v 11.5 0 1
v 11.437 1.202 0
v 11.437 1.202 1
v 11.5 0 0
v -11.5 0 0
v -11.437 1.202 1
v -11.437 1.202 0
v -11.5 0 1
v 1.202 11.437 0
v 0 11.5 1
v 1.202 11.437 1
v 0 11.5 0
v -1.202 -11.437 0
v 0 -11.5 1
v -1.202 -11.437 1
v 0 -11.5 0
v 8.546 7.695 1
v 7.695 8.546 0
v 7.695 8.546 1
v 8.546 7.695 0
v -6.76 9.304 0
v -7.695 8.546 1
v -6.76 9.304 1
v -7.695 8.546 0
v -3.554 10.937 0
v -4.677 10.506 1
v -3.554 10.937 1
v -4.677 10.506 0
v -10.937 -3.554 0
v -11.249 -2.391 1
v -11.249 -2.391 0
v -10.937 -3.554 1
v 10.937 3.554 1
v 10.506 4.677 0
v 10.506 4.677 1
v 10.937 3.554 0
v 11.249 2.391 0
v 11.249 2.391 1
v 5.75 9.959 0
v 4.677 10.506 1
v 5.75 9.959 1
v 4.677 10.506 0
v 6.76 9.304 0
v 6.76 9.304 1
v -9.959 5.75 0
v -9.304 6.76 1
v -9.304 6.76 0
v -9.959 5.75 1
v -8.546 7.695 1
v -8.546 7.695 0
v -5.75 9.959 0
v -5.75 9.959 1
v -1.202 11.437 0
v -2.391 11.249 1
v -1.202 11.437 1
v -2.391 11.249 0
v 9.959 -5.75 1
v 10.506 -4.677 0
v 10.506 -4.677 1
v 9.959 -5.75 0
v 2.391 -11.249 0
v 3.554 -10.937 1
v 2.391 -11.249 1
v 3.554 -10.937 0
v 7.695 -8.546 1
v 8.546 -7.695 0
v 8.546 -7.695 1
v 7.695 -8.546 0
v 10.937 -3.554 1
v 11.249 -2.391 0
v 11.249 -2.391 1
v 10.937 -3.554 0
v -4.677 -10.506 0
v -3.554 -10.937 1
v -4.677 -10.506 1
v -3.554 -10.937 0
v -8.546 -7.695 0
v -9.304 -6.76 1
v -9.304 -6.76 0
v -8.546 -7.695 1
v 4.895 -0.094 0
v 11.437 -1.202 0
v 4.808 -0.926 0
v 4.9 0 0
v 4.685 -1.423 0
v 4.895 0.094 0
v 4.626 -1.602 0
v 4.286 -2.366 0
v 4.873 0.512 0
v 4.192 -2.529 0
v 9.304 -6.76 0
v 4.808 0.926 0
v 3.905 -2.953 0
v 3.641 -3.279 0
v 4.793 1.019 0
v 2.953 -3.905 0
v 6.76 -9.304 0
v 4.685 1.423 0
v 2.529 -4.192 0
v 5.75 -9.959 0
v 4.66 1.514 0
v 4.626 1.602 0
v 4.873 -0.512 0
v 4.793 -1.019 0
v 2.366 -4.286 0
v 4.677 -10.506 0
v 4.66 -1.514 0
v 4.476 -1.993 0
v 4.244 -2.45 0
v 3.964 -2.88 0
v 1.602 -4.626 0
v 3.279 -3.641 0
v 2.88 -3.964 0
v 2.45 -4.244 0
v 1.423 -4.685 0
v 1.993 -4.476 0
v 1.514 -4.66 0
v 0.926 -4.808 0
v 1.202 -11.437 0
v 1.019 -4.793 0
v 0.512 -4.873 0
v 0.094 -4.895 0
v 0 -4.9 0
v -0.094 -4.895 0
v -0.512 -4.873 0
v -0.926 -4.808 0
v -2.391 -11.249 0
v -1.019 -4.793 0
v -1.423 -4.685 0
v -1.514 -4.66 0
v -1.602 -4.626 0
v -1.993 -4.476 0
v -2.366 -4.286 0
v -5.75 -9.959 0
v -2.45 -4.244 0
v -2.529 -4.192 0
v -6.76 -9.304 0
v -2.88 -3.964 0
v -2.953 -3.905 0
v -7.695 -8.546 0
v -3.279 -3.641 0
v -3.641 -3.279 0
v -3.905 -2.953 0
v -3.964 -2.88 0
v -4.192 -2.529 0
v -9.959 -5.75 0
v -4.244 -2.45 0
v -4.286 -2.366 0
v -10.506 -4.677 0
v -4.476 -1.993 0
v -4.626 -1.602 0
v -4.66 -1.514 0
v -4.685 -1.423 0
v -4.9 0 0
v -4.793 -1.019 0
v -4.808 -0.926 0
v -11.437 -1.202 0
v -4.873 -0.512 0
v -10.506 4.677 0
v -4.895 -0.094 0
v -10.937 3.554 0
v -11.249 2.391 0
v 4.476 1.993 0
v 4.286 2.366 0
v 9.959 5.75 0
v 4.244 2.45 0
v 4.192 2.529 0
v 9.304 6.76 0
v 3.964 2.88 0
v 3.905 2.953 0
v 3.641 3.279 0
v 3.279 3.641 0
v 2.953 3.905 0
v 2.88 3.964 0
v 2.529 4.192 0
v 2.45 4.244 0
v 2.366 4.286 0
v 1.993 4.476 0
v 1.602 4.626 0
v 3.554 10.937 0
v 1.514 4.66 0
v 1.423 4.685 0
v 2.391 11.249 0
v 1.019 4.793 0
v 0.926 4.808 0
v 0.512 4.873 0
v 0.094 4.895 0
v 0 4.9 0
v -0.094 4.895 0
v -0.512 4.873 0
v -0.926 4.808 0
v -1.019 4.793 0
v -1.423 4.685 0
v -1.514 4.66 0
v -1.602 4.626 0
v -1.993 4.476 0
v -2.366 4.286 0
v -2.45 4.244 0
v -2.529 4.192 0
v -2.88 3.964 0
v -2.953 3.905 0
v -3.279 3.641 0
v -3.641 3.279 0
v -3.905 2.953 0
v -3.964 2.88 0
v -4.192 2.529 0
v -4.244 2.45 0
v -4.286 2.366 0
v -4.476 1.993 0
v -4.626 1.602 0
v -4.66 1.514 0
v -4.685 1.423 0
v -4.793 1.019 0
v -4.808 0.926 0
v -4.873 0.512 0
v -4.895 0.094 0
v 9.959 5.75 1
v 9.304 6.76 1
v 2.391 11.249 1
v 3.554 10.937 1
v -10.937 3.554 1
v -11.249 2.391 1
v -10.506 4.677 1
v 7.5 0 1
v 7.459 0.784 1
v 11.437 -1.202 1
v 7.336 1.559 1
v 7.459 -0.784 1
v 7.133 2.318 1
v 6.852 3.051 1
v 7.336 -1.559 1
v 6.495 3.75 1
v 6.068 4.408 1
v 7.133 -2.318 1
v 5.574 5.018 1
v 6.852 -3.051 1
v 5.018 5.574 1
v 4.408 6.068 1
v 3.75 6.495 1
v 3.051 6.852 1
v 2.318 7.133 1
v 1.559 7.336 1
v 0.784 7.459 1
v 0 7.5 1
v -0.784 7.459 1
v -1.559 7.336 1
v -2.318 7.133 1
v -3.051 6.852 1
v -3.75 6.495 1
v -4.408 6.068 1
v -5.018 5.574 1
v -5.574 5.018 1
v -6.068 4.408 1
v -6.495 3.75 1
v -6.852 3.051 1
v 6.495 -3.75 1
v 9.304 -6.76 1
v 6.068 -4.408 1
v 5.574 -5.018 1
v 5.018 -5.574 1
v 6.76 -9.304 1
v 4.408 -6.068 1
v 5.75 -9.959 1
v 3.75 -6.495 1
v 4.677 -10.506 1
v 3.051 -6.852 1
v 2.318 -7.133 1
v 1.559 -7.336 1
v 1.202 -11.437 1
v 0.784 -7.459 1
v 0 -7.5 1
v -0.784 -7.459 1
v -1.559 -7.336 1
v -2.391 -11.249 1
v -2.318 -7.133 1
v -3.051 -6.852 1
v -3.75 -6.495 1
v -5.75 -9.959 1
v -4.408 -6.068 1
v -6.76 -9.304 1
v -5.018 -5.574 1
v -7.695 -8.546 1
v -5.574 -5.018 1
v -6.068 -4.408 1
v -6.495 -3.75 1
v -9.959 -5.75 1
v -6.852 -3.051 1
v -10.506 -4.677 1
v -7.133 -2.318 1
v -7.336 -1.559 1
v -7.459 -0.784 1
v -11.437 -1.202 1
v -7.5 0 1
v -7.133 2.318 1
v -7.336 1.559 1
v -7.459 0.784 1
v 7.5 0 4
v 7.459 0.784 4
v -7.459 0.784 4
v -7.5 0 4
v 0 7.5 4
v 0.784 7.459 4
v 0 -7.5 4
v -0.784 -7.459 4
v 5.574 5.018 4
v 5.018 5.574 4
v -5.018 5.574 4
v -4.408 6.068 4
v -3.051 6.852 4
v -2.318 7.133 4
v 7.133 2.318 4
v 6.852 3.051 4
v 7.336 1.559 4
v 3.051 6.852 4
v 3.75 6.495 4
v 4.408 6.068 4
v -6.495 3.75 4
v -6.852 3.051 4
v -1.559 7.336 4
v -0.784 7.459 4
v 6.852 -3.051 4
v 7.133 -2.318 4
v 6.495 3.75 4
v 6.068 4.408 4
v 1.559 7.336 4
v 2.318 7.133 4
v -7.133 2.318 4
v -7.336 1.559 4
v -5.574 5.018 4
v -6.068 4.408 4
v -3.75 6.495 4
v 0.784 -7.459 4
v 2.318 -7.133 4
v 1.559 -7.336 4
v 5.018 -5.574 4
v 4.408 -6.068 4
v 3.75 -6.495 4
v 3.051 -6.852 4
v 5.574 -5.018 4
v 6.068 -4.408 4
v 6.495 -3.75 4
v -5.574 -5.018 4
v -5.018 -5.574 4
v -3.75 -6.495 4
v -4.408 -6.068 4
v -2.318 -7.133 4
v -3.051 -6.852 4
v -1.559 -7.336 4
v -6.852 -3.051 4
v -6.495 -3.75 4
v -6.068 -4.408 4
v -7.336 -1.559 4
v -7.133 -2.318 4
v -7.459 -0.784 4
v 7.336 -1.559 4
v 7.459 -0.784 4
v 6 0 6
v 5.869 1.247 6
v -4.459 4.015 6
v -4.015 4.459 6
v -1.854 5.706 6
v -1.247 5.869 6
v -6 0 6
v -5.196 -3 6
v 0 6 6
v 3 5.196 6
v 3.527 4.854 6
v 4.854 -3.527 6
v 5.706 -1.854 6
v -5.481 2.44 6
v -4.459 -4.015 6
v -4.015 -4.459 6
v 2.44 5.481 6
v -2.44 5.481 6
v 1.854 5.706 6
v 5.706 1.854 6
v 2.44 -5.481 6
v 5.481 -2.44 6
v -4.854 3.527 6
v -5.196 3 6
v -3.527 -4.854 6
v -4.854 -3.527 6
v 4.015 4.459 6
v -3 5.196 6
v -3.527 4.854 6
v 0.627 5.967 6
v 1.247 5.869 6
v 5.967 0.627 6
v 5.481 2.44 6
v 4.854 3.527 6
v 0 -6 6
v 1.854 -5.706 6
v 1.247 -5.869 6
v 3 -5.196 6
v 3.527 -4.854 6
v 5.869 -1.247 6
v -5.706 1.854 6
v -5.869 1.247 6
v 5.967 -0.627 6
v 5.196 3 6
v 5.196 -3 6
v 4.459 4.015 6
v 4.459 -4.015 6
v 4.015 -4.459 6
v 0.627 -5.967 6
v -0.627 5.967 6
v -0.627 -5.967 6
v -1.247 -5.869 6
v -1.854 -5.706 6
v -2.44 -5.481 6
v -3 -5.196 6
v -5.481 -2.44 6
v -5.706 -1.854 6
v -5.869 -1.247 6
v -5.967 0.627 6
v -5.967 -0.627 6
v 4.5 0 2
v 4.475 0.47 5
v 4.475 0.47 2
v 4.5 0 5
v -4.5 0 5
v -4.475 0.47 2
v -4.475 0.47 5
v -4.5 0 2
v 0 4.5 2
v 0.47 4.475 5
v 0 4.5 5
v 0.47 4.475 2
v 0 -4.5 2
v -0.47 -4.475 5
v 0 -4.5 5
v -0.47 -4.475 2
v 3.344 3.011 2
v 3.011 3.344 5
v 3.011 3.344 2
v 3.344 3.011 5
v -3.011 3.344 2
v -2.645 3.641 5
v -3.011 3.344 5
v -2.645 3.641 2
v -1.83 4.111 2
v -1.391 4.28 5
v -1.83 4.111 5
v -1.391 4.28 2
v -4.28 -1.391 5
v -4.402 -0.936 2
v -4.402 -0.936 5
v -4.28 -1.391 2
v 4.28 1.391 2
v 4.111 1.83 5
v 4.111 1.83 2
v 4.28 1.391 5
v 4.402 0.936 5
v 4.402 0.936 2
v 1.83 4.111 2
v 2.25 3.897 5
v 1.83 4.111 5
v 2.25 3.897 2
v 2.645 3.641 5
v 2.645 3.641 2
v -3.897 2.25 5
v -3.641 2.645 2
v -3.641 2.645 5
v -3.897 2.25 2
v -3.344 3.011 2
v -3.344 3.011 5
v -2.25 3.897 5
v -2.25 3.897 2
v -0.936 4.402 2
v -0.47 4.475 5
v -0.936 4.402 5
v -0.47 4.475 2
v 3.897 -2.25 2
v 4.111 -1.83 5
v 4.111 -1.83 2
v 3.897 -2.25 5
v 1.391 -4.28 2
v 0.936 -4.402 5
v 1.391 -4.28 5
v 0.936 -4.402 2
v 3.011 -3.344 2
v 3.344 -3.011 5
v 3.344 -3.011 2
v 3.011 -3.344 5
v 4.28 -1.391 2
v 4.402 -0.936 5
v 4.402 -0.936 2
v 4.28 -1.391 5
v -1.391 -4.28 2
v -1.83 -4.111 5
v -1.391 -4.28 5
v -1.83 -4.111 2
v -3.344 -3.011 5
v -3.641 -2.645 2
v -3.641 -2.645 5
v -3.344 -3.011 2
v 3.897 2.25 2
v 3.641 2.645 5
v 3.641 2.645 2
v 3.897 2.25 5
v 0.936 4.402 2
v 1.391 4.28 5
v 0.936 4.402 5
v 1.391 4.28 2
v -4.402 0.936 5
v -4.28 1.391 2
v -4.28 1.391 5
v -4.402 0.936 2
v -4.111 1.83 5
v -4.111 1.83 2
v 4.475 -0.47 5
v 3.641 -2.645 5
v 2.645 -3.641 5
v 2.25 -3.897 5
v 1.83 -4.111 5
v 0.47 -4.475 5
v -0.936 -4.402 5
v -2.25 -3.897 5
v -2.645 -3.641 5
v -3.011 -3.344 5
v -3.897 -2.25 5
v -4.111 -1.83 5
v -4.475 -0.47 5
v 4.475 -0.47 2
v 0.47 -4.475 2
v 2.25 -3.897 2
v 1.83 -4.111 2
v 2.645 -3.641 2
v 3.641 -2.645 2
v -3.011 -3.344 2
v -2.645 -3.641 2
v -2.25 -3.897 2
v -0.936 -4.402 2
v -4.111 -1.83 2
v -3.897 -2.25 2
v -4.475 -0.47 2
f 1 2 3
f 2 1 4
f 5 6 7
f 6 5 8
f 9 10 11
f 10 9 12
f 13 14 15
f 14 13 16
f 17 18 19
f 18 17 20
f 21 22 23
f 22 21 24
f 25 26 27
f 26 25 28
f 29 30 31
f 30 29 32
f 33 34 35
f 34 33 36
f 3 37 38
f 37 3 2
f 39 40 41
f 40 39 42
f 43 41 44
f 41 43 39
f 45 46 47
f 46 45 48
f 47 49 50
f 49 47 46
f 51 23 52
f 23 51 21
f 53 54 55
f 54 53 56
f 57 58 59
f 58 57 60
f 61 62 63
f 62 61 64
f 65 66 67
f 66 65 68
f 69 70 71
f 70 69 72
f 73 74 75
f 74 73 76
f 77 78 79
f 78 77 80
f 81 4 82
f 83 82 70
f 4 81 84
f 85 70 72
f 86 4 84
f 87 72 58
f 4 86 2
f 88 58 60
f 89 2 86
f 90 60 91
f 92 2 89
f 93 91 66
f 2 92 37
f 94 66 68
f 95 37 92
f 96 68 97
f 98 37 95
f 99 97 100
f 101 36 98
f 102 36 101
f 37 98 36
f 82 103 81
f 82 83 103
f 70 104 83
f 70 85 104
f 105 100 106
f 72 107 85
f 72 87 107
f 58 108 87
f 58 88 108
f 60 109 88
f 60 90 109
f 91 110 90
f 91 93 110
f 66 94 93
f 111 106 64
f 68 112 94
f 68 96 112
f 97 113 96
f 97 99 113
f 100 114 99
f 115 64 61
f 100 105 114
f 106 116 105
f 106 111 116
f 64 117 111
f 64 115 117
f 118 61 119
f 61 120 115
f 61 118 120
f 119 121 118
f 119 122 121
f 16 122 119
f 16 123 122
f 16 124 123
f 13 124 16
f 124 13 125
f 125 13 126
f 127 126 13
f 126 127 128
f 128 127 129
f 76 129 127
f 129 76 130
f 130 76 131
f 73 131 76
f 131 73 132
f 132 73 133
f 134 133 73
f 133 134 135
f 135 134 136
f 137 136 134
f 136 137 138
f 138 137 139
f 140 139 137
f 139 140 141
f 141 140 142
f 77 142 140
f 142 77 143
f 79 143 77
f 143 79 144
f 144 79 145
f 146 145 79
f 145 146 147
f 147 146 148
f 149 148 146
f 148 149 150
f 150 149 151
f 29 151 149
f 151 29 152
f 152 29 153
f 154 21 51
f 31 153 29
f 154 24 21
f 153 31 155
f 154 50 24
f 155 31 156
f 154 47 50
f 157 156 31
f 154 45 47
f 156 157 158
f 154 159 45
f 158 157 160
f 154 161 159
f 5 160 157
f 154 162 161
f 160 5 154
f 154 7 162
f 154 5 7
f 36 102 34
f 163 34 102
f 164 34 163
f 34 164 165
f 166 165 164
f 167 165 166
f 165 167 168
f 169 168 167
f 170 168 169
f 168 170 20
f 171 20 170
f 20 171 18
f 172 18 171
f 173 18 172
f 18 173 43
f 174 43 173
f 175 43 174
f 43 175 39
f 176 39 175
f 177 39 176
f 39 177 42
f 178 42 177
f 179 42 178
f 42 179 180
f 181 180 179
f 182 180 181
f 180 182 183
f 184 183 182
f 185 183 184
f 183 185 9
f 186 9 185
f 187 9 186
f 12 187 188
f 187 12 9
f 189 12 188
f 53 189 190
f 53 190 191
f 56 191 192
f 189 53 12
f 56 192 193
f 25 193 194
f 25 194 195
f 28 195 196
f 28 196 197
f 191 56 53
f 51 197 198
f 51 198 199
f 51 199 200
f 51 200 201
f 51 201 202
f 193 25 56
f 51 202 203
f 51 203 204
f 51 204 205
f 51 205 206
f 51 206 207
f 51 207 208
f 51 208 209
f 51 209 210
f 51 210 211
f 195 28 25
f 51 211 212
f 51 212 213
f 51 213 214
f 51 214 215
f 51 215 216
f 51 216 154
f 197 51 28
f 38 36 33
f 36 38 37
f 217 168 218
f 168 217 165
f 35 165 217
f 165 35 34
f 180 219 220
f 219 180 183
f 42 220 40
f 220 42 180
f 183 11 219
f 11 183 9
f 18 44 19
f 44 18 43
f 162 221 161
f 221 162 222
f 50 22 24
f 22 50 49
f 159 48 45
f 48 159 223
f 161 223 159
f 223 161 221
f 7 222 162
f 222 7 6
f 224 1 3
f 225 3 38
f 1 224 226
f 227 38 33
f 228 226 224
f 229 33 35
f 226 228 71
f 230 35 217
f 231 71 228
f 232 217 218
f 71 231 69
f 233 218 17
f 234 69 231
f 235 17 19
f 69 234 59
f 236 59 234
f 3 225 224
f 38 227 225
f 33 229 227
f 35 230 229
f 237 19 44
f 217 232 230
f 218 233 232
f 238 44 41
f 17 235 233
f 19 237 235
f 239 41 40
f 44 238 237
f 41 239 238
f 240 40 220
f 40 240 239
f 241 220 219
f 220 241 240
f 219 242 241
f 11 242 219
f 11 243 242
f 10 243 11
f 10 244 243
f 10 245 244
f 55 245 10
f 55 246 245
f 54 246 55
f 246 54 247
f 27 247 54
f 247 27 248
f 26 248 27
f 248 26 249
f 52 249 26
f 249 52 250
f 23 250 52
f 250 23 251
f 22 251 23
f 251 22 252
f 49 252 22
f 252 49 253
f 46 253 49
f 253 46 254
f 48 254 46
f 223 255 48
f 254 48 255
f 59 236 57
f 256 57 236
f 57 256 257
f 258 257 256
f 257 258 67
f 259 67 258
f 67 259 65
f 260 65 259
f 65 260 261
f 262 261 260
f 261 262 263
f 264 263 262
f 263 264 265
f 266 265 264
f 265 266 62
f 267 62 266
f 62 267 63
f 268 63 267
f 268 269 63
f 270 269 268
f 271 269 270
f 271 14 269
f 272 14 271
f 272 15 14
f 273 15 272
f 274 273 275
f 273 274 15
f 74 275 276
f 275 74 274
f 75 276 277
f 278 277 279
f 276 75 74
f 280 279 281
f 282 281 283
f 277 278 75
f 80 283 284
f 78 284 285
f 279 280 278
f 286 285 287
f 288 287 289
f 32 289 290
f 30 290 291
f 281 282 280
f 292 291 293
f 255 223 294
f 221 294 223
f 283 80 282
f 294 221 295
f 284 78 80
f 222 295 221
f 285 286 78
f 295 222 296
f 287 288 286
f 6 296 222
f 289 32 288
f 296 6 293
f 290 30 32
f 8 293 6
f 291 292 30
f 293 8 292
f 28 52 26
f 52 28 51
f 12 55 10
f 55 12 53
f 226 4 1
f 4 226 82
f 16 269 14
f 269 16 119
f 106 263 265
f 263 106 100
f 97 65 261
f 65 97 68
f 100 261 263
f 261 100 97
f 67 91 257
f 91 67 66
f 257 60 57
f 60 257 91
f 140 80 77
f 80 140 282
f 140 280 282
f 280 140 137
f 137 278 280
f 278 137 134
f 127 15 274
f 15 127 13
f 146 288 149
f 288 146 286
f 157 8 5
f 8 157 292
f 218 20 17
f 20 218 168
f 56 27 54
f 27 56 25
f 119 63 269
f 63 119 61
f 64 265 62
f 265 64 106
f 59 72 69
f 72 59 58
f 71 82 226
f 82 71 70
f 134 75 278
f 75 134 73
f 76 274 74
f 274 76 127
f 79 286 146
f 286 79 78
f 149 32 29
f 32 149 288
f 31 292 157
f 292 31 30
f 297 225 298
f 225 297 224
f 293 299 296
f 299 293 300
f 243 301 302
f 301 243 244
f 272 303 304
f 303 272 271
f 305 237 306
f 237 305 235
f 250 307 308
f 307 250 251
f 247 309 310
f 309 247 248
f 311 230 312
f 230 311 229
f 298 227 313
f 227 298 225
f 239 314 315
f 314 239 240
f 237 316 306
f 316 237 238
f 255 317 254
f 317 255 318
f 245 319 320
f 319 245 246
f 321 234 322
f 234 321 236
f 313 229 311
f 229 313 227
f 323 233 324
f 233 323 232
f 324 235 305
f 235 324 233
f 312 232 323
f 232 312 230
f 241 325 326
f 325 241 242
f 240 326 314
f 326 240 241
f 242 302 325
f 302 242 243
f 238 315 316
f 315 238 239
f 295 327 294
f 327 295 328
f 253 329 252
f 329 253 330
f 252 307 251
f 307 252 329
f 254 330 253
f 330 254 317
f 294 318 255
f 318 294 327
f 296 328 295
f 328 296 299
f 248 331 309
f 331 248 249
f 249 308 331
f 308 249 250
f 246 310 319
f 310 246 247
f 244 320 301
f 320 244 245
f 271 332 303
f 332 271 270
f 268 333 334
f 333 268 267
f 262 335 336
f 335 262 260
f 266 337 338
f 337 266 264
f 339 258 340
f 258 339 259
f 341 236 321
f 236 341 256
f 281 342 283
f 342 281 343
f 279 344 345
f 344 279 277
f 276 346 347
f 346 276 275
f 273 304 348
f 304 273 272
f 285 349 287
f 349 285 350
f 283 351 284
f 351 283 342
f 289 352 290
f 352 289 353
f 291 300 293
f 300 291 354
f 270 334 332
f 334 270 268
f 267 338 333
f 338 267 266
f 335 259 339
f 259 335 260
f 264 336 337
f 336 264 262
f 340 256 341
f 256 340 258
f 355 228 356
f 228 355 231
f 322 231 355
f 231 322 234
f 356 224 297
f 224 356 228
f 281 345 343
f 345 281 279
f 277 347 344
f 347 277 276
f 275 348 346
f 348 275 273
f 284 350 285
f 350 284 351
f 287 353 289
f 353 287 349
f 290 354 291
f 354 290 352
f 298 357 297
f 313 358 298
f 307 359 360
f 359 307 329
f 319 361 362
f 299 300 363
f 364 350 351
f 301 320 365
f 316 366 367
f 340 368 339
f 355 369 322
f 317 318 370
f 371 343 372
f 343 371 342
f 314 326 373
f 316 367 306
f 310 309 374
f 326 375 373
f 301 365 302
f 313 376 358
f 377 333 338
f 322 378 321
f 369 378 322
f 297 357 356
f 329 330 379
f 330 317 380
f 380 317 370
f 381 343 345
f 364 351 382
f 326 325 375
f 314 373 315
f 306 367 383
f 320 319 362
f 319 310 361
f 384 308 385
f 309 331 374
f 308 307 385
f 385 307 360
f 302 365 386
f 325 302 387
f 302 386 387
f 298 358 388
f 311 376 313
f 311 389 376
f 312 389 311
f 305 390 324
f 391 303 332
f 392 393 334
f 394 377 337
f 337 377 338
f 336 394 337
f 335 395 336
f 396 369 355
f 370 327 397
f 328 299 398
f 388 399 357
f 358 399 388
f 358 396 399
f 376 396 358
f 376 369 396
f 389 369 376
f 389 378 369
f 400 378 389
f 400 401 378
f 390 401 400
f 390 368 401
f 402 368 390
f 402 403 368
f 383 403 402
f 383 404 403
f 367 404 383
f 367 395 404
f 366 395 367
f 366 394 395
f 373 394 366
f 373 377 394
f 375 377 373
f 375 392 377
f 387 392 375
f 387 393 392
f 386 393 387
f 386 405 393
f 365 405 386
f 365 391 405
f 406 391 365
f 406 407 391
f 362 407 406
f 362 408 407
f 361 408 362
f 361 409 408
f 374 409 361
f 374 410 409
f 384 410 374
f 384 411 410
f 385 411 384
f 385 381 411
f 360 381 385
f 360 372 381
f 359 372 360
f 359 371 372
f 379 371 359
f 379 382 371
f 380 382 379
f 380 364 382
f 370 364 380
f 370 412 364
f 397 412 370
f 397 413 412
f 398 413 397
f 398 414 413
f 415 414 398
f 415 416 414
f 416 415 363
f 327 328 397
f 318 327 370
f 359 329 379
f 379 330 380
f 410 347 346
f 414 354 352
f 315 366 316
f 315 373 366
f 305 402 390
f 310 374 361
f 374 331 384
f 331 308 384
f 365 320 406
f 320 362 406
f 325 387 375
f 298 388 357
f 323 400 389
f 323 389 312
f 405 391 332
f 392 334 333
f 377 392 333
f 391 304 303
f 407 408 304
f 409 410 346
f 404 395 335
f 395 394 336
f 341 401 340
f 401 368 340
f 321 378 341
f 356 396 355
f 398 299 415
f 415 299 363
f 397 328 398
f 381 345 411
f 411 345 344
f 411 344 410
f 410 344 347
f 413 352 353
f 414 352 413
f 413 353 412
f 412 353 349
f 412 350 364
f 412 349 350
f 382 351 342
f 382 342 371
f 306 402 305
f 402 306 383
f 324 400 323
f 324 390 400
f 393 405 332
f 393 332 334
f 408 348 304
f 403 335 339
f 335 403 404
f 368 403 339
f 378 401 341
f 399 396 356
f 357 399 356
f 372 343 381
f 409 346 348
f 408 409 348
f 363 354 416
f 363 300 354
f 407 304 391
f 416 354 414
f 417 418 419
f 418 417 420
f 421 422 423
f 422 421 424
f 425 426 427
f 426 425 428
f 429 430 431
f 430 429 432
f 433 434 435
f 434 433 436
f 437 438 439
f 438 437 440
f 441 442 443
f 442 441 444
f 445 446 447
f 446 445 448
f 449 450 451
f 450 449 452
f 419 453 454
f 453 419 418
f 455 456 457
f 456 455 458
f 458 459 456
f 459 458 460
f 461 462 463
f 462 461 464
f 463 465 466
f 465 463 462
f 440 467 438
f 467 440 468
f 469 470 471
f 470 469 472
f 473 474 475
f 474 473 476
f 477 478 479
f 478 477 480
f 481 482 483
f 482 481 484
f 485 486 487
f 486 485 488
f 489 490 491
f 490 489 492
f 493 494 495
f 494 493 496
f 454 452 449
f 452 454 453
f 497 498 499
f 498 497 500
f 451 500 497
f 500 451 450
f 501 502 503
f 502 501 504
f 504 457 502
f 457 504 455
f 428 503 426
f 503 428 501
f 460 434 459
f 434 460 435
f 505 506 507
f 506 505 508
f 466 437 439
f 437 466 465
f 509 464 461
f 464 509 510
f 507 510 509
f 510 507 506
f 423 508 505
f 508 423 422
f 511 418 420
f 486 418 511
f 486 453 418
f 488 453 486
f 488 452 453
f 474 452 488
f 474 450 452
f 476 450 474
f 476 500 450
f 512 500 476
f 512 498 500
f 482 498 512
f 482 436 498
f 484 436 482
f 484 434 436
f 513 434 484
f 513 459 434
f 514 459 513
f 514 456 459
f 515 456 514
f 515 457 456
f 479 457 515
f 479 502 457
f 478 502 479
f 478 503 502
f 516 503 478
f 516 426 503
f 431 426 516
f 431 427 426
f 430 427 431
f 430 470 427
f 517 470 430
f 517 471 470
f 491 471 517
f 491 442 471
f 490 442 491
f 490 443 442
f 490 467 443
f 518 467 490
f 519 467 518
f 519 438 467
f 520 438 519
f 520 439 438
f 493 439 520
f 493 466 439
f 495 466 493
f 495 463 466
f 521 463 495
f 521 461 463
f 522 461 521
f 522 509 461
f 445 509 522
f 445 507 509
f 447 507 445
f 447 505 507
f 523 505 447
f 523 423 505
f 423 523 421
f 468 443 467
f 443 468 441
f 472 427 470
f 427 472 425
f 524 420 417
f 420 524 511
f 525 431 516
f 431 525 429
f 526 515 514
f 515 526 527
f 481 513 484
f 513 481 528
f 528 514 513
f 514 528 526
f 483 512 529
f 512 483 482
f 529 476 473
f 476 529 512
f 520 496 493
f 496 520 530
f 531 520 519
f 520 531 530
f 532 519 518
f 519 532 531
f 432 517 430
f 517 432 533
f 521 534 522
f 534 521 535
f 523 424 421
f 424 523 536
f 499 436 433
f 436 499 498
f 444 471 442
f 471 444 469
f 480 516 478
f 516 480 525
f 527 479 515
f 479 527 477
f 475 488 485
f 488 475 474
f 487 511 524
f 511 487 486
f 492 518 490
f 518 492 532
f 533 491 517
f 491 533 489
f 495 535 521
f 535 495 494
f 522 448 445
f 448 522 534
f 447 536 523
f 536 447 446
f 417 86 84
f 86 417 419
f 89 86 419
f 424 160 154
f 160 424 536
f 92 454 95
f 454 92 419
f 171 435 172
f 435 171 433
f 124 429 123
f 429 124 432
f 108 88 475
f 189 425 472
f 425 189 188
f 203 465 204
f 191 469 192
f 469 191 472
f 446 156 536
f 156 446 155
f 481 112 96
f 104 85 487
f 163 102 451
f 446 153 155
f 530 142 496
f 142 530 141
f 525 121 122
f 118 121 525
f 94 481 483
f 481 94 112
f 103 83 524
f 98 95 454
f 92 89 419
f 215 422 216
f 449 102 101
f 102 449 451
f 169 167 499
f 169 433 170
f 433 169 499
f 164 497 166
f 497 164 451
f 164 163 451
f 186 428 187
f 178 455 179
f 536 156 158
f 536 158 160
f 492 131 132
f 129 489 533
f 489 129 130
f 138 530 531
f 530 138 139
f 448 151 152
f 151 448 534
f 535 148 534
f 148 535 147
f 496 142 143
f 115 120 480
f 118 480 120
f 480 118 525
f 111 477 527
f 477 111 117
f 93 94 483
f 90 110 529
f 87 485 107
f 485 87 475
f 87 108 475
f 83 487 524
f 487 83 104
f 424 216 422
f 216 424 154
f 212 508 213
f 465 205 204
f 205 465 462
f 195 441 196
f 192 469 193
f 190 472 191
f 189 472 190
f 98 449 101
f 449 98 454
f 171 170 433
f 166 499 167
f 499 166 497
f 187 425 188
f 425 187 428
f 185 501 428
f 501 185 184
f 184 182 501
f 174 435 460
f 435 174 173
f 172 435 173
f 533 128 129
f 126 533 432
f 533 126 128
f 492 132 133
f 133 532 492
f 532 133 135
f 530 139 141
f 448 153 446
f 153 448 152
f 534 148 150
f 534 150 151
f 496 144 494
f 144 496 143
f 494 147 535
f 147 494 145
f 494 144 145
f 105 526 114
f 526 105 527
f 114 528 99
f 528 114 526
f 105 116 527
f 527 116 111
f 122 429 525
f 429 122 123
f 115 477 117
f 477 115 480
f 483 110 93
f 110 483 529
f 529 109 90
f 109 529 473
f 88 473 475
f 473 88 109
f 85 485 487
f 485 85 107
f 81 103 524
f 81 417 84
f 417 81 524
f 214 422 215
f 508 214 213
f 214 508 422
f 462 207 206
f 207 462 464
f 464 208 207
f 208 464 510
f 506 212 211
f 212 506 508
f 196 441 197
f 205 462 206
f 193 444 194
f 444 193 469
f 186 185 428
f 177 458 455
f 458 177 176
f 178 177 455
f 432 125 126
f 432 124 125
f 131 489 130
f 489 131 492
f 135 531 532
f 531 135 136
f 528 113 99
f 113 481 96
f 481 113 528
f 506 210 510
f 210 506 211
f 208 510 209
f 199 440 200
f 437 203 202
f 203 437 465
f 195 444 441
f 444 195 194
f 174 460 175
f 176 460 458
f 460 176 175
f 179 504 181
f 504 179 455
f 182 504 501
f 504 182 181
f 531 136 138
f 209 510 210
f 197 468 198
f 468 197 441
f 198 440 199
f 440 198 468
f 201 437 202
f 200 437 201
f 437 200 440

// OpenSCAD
// PRUSA MMU2
// s-holder-endstop
// GNU GPL v3
// Josef Průša <iam@josefprusa.cz> and contributors
// http://www.reprap.org/wiki/Prusa_Mendel
// http://prusamendel.org


difference()
{

    union()
    {
        // outside shape
        translate([0,0,0]) cylinder( h=1, r=11.5, $fn=60 ); 
        translate([0,0,0]) cylinder( h=4, r=7.5, $fn=60 ); 
        translate([0,0,4]) cylinder( h=2, r=7.5, r2=6, $fn=60 ); 
    }

    // rod
    translate([0,0,0]) cylinder( h=5, r=4.5, $fn=60 ); 
    translate([0,0,-0.5]) cylinder( h=2.5, r2=4.5, r1=5, $fn=60 ); 
}
